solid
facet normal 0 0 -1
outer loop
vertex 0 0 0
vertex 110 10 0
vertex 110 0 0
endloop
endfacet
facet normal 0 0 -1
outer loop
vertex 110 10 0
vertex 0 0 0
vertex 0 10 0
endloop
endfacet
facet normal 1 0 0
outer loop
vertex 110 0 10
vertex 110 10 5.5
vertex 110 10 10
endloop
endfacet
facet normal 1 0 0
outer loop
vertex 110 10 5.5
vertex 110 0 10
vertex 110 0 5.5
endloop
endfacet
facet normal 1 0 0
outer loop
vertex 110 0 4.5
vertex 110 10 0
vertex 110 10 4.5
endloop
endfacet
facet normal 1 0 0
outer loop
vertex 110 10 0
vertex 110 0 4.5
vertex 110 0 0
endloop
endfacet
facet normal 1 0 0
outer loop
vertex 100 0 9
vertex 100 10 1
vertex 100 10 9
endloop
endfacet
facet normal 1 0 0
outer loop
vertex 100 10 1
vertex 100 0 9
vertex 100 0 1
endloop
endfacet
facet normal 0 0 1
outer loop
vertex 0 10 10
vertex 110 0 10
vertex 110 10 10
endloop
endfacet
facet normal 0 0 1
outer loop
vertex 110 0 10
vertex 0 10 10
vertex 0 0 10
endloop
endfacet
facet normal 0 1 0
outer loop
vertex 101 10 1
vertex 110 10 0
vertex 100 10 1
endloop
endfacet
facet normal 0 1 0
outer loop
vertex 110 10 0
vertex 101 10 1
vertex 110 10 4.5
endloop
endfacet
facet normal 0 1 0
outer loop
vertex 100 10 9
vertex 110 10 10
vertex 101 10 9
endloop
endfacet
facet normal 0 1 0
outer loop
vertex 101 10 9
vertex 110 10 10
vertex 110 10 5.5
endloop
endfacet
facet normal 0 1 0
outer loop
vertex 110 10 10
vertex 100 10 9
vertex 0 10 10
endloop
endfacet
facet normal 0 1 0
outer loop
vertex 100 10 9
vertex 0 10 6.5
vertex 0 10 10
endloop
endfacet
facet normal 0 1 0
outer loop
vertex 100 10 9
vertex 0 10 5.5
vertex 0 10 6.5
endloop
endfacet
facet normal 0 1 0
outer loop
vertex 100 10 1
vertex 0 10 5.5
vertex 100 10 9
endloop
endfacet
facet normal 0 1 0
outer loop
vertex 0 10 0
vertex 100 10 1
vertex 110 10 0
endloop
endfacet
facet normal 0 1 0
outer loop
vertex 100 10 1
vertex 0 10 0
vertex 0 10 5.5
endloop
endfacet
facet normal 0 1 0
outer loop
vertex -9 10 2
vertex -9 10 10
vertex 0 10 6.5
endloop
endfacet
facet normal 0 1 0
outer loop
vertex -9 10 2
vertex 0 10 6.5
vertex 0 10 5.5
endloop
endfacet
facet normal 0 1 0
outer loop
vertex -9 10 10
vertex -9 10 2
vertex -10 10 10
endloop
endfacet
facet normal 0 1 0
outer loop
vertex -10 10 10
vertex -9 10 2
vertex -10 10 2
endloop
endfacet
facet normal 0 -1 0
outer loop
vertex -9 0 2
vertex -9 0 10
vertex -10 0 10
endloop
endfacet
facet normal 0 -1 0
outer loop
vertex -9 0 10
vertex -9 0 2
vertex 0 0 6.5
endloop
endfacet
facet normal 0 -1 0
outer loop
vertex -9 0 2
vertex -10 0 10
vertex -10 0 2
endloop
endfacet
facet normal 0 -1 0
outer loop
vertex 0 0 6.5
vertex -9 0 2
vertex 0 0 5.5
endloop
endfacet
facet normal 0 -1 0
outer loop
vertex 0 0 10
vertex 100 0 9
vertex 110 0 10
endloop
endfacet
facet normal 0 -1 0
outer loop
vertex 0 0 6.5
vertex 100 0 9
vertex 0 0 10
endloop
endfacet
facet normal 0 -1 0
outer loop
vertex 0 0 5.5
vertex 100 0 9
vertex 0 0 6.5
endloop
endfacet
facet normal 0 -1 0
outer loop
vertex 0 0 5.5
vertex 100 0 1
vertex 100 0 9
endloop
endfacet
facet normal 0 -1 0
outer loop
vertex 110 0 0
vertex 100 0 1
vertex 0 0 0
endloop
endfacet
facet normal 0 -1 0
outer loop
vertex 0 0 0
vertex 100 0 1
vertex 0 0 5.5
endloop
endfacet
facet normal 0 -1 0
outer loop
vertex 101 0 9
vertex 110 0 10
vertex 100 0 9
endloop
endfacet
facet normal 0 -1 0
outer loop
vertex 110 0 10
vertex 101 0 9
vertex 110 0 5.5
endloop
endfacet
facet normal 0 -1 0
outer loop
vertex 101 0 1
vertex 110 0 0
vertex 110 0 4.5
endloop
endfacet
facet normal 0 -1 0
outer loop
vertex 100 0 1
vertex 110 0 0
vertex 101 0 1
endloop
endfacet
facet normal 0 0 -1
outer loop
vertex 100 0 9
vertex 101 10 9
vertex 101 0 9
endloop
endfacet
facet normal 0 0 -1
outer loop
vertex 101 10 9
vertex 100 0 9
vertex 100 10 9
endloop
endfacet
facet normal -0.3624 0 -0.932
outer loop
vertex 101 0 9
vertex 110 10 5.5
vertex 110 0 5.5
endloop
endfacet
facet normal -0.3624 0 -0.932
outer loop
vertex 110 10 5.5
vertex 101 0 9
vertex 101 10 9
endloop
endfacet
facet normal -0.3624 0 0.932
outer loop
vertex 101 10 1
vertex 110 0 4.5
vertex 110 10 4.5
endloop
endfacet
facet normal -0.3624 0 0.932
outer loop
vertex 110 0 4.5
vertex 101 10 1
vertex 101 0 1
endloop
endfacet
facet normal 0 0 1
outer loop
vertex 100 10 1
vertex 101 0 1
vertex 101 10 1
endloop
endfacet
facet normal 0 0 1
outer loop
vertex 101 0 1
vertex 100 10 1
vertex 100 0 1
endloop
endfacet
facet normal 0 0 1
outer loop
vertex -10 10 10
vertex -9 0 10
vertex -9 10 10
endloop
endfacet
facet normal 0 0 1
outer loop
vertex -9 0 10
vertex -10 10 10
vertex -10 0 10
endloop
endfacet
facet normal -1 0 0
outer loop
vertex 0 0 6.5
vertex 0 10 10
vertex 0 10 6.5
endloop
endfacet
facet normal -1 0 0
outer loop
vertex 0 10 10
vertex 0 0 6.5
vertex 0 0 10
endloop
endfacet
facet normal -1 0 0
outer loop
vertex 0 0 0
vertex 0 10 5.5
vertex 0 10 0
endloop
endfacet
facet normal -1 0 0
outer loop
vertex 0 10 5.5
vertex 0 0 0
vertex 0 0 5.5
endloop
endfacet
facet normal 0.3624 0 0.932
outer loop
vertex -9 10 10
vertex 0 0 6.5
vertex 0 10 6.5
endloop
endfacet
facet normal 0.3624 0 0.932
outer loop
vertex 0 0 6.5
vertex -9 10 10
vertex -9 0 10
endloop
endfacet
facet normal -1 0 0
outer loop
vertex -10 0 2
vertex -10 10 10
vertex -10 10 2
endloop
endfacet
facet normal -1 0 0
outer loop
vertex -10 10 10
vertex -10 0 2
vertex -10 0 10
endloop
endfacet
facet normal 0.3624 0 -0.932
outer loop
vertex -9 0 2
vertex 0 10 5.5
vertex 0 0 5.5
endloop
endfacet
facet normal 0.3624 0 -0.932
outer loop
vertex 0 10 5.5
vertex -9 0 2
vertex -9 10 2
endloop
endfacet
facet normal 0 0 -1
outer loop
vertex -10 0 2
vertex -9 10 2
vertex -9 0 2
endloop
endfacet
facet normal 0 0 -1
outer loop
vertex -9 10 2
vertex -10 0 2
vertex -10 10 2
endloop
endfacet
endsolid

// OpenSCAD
// file: dove_tail.scad
top = 10;
left = 10;
right = 10;
width = 1;
thickness = 10;
height_offset = 10;

module dove_tail(top, left, right, width, thickness){
    translate([right, 0, 0]){
        hull(){
            translate([0, 0, 0]){
                translate([left + width, 0, 0]){
                    cube(width);
                }
                translate([right * -1 + width, 0, 0]){
                    cube(width);
                }
                translate([width, 0, top]){
                    cube(width);
                }
            }
            translate([0, thickness, 0]){
                translate([left + width, width, 0]){
                    cube(width);
                }
                translate([right * -1 + width, width, 0]){
                    cube(width);
                }
                translate([width, width, top]){
                    cube(width);
                }
            }
        }
    }
}
module dove_tail_negative(top, left, right, width, thickness, height_offset){
    length_percent = 1;
    length = left + right + width + width + width;
    height = top + height_offset;
    difference(){
        translate([0, 0, 0]){
            cube([length * length_percent, thickness, height]);
        }
        translate([length - length, 0, 0]){
            dove_tail(top, left, right, width, thickness);
        }
    }
}

dove_tail(top, left, right, width, thickness);
translate([left + right + 10, 0, 0 ]){
    dove_tail_negative(top, left, right, width, thickness, height_offset);
}
// main file
use <dove_tail.scad>
//Brace settings
height = 10;
length = 100;
width = 10;

//Dove tail settings
dove_tail_top = height -1;
dove_tail_right = height/2 -.5 -1;
dove_tail_left = height/2 -.5 -1;
dove_tail_width = 1;
dove_tail_thickness = width - dove_tail_width - dove_tail_width;
dove_tail_rotation_x = 0;
dove_tail_rotation_y = 90;
dove_tail_rotation_z = 0;
dove_tail_translate_x = -height;
dove_tail_translate_y = 0;
dove_tail_translate_z = dove_tail_left + dove_tail_right + dove_tail_width + dove_tail_width + 2;

//Dove tail negative
dove_tail_negative_height_offset = 1;
dove_tail_negative_top = dove_tail_top;
dove_tail_negative_right = dove_tail_right;
dove_tail_negative_left = dove_tail_left;
dove_tail_negative_width = dove_tail_width;
dove_tail_negative_thickness = dove_tail_thickness + 2;
dove_tail_negative_rotation_x = dove_tail_rotation_x;
dove_tail_negative_rotation_y = dove_tail_rotation_y;
dove_tail_negative_rotation_z = dove_tail_rotation_z;
dove_tail_negative_translate_x = length;
dove_tail_negative_translate_y = dove_tail_translate_y;
dove_tail_negative_translate_z = height;

translate([dove_tail_translate_x, dove_tail_translate_y, dove_tail_translate_z]){
    rotate([dove_tail_rotation_x, dove_tail_rotation_y, dove_tail_rotation_z]){
        dove_tail(dove_tail_top, dove_tail_left, dove_tail_right, dove_tail_width, dove_tail_thickness);
    }
}

translate([dove_tail_negative_translate_x, dove_tail_negative_translate_y, dove_tail_negative_translate_z]){
    rotate([dove_tail_rotation_x, dove_tail_rotation_y, dove_tail_rotation_z]){
        dove_tail_negative(dove_tail_negative_top, dove_tail_negative_left, dove_tail_negative_right, dove_tail_negative_width, dove_tail_negative_thickness, dove_tail_negative_height_offset);
    }
}

cube([length, width, height]);
